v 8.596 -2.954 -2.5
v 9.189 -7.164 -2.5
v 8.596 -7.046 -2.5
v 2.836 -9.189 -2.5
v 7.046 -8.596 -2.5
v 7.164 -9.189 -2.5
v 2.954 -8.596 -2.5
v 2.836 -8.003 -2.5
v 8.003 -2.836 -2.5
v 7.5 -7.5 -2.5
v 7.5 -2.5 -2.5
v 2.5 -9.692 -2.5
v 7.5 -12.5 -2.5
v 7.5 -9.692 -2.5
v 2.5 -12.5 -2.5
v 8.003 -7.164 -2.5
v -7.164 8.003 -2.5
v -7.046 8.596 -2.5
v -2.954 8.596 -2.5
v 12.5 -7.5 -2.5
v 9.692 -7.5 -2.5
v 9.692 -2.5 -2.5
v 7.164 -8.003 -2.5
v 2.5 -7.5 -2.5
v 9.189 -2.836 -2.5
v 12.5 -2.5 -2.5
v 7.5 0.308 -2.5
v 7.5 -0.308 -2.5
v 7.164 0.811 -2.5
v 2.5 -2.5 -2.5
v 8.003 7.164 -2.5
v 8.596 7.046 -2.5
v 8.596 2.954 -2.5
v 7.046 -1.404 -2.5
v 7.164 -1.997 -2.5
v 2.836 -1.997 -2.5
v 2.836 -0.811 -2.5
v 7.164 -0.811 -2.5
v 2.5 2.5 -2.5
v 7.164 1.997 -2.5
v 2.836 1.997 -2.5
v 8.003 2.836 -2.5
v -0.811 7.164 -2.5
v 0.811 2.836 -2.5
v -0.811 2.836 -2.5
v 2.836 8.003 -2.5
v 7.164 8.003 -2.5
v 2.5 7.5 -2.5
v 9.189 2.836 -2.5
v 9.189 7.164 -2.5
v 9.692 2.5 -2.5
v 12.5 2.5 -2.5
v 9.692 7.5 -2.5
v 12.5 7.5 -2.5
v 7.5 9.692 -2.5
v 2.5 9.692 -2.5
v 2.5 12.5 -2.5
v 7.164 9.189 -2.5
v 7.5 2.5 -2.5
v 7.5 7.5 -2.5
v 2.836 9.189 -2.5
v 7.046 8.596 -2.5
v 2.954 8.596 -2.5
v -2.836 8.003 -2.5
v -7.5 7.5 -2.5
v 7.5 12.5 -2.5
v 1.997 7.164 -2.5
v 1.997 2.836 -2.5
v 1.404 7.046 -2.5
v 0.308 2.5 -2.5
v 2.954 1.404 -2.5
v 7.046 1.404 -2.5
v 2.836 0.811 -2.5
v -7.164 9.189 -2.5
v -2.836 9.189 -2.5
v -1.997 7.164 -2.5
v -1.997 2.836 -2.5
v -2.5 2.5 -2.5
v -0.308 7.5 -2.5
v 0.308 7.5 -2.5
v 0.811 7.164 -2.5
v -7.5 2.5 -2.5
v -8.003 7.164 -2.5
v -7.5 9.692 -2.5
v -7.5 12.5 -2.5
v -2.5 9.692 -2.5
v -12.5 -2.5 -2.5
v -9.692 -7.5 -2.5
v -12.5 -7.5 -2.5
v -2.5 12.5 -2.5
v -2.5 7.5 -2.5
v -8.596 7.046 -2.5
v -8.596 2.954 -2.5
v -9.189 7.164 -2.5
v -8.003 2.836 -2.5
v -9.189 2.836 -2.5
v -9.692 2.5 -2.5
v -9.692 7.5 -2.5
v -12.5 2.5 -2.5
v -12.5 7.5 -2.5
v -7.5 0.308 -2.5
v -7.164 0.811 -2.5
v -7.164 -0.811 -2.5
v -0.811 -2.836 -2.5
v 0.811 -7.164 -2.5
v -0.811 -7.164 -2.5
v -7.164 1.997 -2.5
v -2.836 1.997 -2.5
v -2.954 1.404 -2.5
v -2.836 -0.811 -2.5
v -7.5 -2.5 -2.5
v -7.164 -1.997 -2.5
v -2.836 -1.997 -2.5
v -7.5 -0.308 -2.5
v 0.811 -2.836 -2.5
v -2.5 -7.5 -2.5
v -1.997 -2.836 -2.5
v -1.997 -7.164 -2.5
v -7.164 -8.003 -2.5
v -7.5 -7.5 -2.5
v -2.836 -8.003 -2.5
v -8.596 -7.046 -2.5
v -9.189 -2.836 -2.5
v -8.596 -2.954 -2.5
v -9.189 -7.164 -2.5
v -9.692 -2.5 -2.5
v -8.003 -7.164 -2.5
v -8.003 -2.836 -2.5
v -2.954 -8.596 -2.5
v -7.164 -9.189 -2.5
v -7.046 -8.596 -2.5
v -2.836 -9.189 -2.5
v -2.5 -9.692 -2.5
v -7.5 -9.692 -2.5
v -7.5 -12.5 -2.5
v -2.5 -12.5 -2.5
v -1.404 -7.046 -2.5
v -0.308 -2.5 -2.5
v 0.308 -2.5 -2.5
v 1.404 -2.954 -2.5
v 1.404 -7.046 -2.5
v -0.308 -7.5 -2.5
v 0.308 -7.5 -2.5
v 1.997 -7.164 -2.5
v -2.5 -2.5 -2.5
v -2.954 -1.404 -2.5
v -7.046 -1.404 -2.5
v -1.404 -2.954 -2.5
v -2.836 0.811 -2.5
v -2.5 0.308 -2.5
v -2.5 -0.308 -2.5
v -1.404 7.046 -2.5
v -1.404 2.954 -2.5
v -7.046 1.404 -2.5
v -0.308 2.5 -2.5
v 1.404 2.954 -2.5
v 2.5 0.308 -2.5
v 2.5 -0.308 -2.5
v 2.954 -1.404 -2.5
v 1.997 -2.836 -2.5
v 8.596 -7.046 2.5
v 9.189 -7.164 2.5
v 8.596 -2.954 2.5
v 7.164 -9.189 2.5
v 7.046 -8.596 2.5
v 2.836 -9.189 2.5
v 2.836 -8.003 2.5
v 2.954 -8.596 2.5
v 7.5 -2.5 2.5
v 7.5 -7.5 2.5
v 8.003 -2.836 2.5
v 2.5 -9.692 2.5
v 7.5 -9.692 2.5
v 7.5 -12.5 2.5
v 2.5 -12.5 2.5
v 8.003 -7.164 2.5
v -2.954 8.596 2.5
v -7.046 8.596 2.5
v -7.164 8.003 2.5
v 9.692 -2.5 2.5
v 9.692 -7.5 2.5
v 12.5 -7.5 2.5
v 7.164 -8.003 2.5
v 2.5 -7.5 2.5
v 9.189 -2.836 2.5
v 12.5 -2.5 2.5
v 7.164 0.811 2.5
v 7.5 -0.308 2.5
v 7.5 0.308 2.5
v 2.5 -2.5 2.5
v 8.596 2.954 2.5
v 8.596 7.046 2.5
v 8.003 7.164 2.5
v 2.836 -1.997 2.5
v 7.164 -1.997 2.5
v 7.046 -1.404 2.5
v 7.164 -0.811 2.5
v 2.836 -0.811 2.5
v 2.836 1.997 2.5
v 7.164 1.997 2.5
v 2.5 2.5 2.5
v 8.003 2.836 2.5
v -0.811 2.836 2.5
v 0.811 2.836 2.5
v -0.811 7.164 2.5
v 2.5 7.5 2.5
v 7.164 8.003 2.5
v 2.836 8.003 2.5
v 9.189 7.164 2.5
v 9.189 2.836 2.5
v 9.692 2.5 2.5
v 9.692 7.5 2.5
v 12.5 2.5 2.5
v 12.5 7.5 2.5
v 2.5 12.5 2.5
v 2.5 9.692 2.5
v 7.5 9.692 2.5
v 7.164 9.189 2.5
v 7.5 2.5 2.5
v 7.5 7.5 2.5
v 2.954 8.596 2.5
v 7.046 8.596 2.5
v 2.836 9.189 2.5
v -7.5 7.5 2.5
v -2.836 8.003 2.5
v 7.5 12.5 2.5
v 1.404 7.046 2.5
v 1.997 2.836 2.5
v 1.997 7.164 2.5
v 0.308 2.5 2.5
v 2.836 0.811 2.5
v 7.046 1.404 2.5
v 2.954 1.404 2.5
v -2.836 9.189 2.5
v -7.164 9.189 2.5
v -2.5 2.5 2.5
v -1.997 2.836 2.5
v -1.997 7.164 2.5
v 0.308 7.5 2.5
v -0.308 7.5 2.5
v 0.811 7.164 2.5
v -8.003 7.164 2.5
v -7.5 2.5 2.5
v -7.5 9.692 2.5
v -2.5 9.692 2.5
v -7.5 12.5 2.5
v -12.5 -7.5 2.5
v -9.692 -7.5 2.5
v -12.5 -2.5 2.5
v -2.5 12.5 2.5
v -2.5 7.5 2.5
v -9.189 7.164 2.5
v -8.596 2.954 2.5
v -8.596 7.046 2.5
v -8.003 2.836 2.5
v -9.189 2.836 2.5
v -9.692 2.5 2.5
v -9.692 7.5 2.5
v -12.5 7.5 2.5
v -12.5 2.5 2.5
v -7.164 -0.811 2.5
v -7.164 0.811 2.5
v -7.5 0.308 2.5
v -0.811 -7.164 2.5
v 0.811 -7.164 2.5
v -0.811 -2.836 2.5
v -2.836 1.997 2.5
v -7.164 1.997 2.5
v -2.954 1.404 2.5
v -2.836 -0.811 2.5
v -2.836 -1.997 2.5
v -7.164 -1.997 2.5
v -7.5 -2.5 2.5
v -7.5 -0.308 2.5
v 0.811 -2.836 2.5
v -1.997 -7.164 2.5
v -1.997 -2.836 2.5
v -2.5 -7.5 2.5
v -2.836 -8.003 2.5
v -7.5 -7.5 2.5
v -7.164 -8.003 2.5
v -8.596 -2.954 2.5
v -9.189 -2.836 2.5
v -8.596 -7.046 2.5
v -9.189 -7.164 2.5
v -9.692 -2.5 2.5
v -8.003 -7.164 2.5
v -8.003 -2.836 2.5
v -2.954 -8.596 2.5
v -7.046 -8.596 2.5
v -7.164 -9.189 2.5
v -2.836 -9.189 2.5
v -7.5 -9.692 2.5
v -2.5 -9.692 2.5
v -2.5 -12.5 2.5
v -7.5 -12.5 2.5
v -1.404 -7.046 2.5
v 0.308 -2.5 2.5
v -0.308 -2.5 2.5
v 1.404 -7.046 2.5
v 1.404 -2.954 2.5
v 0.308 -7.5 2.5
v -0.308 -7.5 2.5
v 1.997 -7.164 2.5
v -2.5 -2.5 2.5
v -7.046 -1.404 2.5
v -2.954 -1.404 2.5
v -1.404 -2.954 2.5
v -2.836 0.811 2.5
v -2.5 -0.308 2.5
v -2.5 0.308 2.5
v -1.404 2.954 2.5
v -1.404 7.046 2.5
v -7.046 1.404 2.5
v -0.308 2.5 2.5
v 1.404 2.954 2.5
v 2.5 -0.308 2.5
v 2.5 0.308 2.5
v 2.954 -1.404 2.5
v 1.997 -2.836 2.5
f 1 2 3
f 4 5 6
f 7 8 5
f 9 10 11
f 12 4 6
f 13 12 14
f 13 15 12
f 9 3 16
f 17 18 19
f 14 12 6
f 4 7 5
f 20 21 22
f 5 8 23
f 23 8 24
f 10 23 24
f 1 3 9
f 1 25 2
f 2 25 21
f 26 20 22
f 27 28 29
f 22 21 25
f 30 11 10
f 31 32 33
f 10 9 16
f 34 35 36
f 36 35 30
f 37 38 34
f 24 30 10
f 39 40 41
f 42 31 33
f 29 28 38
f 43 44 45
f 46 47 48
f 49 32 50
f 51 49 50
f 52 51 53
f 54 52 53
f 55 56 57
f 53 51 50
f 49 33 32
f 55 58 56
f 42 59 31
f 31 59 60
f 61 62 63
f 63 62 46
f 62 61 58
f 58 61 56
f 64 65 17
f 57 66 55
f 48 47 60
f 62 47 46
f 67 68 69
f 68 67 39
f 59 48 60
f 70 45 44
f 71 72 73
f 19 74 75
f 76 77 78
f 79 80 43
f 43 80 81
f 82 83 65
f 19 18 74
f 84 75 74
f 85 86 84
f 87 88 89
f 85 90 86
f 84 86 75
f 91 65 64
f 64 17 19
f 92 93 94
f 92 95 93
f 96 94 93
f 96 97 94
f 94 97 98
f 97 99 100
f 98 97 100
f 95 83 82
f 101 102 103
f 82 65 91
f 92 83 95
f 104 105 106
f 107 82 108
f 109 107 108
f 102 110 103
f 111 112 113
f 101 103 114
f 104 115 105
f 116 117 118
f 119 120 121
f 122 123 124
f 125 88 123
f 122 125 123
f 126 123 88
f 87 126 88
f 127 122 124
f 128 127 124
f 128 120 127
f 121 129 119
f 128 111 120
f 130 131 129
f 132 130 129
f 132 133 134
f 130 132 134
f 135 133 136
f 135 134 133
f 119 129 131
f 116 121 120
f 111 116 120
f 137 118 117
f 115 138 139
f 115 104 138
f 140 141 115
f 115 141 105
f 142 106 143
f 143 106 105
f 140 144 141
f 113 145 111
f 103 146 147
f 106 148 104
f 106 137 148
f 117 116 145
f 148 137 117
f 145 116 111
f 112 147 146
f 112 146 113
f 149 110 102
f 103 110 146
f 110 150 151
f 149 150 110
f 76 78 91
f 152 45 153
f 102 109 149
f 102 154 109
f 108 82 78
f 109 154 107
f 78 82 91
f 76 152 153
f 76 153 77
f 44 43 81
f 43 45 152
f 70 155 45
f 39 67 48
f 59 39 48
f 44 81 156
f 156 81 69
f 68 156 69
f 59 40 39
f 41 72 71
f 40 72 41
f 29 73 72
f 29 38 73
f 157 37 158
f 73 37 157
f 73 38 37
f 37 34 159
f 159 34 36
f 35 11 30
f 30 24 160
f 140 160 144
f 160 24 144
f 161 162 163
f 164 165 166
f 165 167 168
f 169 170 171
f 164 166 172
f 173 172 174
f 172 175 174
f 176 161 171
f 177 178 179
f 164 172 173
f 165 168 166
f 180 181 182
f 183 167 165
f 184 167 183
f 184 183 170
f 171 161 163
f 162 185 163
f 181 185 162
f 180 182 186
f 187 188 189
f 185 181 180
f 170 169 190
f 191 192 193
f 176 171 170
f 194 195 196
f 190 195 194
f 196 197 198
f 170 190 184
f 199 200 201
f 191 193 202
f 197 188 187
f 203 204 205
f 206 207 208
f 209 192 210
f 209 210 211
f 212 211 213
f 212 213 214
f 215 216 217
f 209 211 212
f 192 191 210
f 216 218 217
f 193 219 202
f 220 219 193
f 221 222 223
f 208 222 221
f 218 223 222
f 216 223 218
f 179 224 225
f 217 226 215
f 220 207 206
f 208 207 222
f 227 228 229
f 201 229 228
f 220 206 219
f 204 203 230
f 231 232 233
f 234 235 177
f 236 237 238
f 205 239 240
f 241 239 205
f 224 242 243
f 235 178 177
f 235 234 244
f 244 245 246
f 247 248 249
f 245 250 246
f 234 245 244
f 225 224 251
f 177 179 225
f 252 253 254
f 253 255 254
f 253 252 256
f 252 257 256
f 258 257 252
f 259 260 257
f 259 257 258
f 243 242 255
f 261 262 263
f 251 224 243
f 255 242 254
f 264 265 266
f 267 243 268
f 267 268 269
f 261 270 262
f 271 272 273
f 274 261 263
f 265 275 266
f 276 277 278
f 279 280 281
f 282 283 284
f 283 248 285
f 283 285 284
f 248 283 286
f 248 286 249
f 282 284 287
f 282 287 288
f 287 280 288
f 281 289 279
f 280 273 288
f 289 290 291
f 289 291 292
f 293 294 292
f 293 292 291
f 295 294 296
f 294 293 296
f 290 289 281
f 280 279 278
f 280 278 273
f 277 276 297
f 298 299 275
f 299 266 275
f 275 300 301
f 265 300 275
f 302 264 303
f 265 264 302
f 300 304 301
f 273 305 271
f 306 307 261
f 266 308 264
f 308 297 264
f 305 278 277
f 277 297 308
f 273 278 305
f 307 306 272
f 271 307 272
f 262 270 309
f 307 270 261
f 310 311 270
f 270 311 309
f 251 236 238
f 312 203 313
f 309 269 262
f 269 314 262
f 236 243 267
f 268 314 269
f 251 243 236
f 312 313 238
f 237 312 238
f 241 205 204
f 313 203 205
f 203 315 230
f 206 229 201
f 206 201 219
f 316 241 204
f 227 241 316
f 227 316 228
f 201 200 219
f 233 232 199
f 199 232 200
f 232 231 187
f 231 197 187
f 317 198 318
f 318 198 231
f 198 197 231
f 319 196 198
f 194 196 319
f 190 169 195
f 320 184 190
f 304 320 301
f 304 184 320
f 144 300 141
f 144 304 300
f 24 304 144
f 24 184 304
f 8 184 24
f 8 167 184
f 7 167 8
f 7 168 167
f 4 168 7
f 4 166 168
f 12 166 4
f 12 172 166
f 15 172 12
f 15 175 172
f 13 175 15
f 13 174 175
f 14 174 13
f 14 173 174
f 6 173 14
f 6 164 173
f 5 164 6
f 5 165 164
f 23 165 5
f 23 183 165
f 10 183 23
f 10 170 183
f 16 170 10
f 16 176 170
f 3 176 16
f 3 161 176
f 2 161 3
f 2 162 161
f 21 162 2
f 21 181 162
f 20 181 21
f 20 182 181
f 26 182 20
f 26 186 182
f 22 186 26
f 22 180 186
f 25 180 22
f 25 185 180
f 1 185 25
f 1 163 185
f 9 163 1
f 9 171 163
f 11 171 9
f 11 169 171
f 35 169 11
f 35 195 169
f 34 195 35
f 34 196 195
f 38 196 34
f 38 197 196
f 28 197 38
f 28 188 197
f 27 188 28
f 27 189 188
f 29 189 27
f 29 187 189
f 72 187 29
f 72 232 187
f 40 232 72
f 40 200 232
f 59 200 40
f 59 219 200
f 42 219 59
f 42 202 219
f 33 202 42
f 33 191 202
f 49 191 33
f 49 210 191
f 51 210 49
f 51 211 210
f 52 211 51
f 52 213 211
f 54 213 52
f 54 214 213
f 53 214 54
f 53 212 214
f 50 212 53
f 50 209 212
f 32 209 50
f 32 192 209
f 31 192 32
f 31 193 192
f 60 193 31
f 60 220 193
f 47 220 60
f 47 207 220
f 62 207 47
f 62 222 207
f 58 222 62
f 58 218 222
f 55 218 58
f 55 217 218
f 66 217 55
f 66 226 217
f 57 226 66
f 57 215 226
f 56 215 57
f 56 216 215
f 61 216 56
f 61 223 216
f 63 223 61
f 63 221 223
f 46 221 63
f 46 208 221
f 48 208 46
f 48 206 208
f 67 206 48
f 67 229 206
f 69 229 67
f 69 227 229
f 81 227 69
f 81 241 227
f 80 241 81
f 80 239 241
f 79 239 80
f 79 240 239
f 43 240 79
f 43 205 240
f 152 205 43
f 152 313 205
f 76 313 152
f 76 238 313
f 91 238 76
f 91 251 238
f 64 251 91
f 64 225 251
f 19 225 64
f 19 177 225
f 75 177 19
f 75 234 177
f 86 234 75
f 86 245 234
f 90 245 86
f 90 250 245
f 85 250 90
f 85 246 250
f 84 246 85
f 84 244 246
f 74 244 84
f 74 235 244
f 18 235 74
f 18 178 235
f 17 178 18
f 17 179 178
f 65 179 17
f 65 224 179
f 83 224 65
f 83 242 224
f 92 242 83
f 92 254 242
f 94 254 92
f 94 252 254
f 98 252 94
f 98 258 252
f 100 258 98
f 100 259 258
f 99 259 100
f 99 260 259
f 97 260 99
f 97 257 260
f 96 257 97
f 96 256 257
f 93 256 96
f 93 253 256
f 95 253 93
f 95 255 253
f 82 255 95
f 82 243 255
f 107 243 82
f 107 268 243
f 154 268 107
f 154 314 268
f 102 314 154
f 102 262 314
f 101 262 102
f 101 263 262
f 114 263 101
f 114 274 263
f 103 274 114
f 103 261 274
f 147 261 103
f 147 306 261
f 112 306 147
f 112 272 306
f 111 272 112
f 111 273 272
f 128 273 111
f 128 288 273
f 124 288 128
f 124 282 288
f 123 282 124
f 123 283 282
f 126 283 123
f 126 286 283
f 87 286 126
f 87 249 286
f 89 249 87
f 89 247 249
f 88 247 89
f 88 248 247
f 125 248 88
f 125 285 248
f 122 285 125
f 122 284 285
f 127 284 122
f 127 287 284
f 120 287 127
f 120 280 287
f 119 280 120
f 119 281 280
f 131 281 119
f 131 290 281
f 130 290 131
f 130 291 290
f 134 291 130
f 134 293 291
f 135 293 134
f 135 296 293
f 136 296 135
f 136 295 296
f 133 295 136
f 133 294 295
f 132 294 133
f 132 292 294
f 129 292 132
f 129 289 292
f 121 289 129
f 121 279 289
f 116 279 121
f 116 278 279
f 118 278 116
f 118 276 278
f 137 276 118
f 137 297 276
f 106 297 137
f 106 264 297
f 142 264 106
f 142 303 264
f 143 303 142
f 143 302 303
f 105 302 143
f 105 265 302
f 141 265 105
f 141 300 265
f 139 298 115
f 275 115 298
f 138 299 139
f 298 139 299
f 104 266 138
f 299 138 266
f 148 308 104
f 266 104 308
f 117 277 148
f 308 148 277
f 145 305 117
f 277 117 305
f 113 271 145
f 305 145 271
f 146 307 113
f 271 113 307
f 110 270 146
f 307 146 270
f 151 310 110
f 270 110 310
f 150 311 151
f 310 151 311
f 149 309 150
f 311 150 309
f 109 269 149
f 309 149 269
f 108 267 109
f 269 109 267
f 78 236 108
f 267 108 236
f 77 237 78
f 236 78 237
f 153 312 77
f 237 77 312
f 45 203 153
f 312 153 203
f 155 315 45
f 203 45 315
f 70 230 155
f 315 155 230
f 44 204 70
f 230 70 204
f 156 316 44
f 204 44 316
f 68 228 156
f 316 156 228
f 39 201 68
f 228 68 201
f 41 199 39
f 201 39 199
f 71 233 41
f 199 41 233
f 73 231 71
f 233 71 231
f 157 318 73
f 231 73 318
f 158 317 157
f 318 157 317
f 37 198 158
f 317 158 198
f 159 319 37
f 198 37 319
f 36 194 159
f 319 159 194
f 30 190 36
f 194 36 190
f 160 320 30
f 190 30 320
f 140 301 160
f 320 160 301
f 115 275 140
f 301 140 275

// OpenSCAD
$fn=16;
//$fn=8;

module structor(dim, center)
{
//Dimensions
    hole_rad = 1.55;
    base_len = 5.0;

//construct
    x=dim[0];
    y=dim[1];

    hole_to_square= sin(45) * hole_rad;

    tooth_matrix = [[-1,0],[-1,1],[0,1],[0,2]];
    
    left=[
        for (ty=[0:y-1])
            for (tp=[0:len(tooth_matrix)-1])
                [tooth_matrix[tp][0],2*ty+tooth_matrix[tp][1]] 
    ];

    top =[
        for (tx=[0:x-1])
            for (tp=[0:len(tooth_matrix)-1])
                [2*tx+tooth_matrix[tp][1],2*y-1-tooth_matrix[tp][0]] 
    ];   

    right = [
            for (ty=[0:y-1])
                for (tp=[0:len(tooth_matrix)-1])
                    [2*x-1-tooth_matrix[tp][0],2*y-1-2*ty-tooth_matrix[tp][1]] 
    ];

    bottom = [
            for (tx=[0:x-1])
                for (tp=[0:len(tooth_matrix)-1])
                    [2*x-1 - 2*tx-tooth_matrix[tp][1],tooth_matrix[tp][0]] 
    ];   

    lp=[left[0]];
    
    myFig = base_len * concat(left,top,right,bottom,lp);
    
    center_coor =[-x*base_len/2,-y*base_len/2];

    translate(center ? [-base_len*(x-0.5), -base_len*(y-0.5), -base_len/2] : [base_len,base_len])

        linear_extrude(base_len)
            difference()
            {
                polygon(myFig);
        
                union()
                {
                
                    for (sQ_x=[0:x-1])
                    {
                        for (sQ_y = [0:y-1] )
                        {
                            translate([(2*sQ_x)*base_len-hole_to_square, (2*sQ_y)*base_len-hole_to_square])
                                circle(r=hole_rad);
                
                            translate([(2*sQ_x+1)*base_len+hole_to_square, (2*sQ_y)*base_len-hole_to_square])
                                circle(r=hole_rad);         

                            translate([(2*sQ_x+1)*base_len+hole_to_square, (2*sQ_y+1)*base_len+hole_to_square])
                                circle(r=hole_rad);
                
                            translate([(2*sQ_x)*base_len-hole_to_square, (2*sQ_y+1)*base_len+hole_to_square])
                                circle(r=hole_rad);
                        }
                    }
                if ((x>1)&&(y>1))
                {
                    for (sQ_x=[0:x-2])
                    {
                        for (sQ_y = [0:y-2] )
                        {
                            translate([base_len*(2*sQ_x+1), base_len*(2*sQ_y+1)])
                                square(base_len);
                        }
                    }
                } else 
                {
                    if (x==1)
                        for (sQ_y = [0:y-1] )
                        {
                            translate([0.5*base_len, base_len*(2*sQ_y+0.5)])
                                circle(r=hole_rad); 
                        }
                    if (y==1)
                        for (sQ_x = [0:x-1] )
                        {
                            translate([ 
                base_len*(2*sQ_x+0.5),0.5*base_len])
                                circle(r=hole_rad); 
                        }
        
            
                }
            }        
        }
}

structor([2,2], center=true);
